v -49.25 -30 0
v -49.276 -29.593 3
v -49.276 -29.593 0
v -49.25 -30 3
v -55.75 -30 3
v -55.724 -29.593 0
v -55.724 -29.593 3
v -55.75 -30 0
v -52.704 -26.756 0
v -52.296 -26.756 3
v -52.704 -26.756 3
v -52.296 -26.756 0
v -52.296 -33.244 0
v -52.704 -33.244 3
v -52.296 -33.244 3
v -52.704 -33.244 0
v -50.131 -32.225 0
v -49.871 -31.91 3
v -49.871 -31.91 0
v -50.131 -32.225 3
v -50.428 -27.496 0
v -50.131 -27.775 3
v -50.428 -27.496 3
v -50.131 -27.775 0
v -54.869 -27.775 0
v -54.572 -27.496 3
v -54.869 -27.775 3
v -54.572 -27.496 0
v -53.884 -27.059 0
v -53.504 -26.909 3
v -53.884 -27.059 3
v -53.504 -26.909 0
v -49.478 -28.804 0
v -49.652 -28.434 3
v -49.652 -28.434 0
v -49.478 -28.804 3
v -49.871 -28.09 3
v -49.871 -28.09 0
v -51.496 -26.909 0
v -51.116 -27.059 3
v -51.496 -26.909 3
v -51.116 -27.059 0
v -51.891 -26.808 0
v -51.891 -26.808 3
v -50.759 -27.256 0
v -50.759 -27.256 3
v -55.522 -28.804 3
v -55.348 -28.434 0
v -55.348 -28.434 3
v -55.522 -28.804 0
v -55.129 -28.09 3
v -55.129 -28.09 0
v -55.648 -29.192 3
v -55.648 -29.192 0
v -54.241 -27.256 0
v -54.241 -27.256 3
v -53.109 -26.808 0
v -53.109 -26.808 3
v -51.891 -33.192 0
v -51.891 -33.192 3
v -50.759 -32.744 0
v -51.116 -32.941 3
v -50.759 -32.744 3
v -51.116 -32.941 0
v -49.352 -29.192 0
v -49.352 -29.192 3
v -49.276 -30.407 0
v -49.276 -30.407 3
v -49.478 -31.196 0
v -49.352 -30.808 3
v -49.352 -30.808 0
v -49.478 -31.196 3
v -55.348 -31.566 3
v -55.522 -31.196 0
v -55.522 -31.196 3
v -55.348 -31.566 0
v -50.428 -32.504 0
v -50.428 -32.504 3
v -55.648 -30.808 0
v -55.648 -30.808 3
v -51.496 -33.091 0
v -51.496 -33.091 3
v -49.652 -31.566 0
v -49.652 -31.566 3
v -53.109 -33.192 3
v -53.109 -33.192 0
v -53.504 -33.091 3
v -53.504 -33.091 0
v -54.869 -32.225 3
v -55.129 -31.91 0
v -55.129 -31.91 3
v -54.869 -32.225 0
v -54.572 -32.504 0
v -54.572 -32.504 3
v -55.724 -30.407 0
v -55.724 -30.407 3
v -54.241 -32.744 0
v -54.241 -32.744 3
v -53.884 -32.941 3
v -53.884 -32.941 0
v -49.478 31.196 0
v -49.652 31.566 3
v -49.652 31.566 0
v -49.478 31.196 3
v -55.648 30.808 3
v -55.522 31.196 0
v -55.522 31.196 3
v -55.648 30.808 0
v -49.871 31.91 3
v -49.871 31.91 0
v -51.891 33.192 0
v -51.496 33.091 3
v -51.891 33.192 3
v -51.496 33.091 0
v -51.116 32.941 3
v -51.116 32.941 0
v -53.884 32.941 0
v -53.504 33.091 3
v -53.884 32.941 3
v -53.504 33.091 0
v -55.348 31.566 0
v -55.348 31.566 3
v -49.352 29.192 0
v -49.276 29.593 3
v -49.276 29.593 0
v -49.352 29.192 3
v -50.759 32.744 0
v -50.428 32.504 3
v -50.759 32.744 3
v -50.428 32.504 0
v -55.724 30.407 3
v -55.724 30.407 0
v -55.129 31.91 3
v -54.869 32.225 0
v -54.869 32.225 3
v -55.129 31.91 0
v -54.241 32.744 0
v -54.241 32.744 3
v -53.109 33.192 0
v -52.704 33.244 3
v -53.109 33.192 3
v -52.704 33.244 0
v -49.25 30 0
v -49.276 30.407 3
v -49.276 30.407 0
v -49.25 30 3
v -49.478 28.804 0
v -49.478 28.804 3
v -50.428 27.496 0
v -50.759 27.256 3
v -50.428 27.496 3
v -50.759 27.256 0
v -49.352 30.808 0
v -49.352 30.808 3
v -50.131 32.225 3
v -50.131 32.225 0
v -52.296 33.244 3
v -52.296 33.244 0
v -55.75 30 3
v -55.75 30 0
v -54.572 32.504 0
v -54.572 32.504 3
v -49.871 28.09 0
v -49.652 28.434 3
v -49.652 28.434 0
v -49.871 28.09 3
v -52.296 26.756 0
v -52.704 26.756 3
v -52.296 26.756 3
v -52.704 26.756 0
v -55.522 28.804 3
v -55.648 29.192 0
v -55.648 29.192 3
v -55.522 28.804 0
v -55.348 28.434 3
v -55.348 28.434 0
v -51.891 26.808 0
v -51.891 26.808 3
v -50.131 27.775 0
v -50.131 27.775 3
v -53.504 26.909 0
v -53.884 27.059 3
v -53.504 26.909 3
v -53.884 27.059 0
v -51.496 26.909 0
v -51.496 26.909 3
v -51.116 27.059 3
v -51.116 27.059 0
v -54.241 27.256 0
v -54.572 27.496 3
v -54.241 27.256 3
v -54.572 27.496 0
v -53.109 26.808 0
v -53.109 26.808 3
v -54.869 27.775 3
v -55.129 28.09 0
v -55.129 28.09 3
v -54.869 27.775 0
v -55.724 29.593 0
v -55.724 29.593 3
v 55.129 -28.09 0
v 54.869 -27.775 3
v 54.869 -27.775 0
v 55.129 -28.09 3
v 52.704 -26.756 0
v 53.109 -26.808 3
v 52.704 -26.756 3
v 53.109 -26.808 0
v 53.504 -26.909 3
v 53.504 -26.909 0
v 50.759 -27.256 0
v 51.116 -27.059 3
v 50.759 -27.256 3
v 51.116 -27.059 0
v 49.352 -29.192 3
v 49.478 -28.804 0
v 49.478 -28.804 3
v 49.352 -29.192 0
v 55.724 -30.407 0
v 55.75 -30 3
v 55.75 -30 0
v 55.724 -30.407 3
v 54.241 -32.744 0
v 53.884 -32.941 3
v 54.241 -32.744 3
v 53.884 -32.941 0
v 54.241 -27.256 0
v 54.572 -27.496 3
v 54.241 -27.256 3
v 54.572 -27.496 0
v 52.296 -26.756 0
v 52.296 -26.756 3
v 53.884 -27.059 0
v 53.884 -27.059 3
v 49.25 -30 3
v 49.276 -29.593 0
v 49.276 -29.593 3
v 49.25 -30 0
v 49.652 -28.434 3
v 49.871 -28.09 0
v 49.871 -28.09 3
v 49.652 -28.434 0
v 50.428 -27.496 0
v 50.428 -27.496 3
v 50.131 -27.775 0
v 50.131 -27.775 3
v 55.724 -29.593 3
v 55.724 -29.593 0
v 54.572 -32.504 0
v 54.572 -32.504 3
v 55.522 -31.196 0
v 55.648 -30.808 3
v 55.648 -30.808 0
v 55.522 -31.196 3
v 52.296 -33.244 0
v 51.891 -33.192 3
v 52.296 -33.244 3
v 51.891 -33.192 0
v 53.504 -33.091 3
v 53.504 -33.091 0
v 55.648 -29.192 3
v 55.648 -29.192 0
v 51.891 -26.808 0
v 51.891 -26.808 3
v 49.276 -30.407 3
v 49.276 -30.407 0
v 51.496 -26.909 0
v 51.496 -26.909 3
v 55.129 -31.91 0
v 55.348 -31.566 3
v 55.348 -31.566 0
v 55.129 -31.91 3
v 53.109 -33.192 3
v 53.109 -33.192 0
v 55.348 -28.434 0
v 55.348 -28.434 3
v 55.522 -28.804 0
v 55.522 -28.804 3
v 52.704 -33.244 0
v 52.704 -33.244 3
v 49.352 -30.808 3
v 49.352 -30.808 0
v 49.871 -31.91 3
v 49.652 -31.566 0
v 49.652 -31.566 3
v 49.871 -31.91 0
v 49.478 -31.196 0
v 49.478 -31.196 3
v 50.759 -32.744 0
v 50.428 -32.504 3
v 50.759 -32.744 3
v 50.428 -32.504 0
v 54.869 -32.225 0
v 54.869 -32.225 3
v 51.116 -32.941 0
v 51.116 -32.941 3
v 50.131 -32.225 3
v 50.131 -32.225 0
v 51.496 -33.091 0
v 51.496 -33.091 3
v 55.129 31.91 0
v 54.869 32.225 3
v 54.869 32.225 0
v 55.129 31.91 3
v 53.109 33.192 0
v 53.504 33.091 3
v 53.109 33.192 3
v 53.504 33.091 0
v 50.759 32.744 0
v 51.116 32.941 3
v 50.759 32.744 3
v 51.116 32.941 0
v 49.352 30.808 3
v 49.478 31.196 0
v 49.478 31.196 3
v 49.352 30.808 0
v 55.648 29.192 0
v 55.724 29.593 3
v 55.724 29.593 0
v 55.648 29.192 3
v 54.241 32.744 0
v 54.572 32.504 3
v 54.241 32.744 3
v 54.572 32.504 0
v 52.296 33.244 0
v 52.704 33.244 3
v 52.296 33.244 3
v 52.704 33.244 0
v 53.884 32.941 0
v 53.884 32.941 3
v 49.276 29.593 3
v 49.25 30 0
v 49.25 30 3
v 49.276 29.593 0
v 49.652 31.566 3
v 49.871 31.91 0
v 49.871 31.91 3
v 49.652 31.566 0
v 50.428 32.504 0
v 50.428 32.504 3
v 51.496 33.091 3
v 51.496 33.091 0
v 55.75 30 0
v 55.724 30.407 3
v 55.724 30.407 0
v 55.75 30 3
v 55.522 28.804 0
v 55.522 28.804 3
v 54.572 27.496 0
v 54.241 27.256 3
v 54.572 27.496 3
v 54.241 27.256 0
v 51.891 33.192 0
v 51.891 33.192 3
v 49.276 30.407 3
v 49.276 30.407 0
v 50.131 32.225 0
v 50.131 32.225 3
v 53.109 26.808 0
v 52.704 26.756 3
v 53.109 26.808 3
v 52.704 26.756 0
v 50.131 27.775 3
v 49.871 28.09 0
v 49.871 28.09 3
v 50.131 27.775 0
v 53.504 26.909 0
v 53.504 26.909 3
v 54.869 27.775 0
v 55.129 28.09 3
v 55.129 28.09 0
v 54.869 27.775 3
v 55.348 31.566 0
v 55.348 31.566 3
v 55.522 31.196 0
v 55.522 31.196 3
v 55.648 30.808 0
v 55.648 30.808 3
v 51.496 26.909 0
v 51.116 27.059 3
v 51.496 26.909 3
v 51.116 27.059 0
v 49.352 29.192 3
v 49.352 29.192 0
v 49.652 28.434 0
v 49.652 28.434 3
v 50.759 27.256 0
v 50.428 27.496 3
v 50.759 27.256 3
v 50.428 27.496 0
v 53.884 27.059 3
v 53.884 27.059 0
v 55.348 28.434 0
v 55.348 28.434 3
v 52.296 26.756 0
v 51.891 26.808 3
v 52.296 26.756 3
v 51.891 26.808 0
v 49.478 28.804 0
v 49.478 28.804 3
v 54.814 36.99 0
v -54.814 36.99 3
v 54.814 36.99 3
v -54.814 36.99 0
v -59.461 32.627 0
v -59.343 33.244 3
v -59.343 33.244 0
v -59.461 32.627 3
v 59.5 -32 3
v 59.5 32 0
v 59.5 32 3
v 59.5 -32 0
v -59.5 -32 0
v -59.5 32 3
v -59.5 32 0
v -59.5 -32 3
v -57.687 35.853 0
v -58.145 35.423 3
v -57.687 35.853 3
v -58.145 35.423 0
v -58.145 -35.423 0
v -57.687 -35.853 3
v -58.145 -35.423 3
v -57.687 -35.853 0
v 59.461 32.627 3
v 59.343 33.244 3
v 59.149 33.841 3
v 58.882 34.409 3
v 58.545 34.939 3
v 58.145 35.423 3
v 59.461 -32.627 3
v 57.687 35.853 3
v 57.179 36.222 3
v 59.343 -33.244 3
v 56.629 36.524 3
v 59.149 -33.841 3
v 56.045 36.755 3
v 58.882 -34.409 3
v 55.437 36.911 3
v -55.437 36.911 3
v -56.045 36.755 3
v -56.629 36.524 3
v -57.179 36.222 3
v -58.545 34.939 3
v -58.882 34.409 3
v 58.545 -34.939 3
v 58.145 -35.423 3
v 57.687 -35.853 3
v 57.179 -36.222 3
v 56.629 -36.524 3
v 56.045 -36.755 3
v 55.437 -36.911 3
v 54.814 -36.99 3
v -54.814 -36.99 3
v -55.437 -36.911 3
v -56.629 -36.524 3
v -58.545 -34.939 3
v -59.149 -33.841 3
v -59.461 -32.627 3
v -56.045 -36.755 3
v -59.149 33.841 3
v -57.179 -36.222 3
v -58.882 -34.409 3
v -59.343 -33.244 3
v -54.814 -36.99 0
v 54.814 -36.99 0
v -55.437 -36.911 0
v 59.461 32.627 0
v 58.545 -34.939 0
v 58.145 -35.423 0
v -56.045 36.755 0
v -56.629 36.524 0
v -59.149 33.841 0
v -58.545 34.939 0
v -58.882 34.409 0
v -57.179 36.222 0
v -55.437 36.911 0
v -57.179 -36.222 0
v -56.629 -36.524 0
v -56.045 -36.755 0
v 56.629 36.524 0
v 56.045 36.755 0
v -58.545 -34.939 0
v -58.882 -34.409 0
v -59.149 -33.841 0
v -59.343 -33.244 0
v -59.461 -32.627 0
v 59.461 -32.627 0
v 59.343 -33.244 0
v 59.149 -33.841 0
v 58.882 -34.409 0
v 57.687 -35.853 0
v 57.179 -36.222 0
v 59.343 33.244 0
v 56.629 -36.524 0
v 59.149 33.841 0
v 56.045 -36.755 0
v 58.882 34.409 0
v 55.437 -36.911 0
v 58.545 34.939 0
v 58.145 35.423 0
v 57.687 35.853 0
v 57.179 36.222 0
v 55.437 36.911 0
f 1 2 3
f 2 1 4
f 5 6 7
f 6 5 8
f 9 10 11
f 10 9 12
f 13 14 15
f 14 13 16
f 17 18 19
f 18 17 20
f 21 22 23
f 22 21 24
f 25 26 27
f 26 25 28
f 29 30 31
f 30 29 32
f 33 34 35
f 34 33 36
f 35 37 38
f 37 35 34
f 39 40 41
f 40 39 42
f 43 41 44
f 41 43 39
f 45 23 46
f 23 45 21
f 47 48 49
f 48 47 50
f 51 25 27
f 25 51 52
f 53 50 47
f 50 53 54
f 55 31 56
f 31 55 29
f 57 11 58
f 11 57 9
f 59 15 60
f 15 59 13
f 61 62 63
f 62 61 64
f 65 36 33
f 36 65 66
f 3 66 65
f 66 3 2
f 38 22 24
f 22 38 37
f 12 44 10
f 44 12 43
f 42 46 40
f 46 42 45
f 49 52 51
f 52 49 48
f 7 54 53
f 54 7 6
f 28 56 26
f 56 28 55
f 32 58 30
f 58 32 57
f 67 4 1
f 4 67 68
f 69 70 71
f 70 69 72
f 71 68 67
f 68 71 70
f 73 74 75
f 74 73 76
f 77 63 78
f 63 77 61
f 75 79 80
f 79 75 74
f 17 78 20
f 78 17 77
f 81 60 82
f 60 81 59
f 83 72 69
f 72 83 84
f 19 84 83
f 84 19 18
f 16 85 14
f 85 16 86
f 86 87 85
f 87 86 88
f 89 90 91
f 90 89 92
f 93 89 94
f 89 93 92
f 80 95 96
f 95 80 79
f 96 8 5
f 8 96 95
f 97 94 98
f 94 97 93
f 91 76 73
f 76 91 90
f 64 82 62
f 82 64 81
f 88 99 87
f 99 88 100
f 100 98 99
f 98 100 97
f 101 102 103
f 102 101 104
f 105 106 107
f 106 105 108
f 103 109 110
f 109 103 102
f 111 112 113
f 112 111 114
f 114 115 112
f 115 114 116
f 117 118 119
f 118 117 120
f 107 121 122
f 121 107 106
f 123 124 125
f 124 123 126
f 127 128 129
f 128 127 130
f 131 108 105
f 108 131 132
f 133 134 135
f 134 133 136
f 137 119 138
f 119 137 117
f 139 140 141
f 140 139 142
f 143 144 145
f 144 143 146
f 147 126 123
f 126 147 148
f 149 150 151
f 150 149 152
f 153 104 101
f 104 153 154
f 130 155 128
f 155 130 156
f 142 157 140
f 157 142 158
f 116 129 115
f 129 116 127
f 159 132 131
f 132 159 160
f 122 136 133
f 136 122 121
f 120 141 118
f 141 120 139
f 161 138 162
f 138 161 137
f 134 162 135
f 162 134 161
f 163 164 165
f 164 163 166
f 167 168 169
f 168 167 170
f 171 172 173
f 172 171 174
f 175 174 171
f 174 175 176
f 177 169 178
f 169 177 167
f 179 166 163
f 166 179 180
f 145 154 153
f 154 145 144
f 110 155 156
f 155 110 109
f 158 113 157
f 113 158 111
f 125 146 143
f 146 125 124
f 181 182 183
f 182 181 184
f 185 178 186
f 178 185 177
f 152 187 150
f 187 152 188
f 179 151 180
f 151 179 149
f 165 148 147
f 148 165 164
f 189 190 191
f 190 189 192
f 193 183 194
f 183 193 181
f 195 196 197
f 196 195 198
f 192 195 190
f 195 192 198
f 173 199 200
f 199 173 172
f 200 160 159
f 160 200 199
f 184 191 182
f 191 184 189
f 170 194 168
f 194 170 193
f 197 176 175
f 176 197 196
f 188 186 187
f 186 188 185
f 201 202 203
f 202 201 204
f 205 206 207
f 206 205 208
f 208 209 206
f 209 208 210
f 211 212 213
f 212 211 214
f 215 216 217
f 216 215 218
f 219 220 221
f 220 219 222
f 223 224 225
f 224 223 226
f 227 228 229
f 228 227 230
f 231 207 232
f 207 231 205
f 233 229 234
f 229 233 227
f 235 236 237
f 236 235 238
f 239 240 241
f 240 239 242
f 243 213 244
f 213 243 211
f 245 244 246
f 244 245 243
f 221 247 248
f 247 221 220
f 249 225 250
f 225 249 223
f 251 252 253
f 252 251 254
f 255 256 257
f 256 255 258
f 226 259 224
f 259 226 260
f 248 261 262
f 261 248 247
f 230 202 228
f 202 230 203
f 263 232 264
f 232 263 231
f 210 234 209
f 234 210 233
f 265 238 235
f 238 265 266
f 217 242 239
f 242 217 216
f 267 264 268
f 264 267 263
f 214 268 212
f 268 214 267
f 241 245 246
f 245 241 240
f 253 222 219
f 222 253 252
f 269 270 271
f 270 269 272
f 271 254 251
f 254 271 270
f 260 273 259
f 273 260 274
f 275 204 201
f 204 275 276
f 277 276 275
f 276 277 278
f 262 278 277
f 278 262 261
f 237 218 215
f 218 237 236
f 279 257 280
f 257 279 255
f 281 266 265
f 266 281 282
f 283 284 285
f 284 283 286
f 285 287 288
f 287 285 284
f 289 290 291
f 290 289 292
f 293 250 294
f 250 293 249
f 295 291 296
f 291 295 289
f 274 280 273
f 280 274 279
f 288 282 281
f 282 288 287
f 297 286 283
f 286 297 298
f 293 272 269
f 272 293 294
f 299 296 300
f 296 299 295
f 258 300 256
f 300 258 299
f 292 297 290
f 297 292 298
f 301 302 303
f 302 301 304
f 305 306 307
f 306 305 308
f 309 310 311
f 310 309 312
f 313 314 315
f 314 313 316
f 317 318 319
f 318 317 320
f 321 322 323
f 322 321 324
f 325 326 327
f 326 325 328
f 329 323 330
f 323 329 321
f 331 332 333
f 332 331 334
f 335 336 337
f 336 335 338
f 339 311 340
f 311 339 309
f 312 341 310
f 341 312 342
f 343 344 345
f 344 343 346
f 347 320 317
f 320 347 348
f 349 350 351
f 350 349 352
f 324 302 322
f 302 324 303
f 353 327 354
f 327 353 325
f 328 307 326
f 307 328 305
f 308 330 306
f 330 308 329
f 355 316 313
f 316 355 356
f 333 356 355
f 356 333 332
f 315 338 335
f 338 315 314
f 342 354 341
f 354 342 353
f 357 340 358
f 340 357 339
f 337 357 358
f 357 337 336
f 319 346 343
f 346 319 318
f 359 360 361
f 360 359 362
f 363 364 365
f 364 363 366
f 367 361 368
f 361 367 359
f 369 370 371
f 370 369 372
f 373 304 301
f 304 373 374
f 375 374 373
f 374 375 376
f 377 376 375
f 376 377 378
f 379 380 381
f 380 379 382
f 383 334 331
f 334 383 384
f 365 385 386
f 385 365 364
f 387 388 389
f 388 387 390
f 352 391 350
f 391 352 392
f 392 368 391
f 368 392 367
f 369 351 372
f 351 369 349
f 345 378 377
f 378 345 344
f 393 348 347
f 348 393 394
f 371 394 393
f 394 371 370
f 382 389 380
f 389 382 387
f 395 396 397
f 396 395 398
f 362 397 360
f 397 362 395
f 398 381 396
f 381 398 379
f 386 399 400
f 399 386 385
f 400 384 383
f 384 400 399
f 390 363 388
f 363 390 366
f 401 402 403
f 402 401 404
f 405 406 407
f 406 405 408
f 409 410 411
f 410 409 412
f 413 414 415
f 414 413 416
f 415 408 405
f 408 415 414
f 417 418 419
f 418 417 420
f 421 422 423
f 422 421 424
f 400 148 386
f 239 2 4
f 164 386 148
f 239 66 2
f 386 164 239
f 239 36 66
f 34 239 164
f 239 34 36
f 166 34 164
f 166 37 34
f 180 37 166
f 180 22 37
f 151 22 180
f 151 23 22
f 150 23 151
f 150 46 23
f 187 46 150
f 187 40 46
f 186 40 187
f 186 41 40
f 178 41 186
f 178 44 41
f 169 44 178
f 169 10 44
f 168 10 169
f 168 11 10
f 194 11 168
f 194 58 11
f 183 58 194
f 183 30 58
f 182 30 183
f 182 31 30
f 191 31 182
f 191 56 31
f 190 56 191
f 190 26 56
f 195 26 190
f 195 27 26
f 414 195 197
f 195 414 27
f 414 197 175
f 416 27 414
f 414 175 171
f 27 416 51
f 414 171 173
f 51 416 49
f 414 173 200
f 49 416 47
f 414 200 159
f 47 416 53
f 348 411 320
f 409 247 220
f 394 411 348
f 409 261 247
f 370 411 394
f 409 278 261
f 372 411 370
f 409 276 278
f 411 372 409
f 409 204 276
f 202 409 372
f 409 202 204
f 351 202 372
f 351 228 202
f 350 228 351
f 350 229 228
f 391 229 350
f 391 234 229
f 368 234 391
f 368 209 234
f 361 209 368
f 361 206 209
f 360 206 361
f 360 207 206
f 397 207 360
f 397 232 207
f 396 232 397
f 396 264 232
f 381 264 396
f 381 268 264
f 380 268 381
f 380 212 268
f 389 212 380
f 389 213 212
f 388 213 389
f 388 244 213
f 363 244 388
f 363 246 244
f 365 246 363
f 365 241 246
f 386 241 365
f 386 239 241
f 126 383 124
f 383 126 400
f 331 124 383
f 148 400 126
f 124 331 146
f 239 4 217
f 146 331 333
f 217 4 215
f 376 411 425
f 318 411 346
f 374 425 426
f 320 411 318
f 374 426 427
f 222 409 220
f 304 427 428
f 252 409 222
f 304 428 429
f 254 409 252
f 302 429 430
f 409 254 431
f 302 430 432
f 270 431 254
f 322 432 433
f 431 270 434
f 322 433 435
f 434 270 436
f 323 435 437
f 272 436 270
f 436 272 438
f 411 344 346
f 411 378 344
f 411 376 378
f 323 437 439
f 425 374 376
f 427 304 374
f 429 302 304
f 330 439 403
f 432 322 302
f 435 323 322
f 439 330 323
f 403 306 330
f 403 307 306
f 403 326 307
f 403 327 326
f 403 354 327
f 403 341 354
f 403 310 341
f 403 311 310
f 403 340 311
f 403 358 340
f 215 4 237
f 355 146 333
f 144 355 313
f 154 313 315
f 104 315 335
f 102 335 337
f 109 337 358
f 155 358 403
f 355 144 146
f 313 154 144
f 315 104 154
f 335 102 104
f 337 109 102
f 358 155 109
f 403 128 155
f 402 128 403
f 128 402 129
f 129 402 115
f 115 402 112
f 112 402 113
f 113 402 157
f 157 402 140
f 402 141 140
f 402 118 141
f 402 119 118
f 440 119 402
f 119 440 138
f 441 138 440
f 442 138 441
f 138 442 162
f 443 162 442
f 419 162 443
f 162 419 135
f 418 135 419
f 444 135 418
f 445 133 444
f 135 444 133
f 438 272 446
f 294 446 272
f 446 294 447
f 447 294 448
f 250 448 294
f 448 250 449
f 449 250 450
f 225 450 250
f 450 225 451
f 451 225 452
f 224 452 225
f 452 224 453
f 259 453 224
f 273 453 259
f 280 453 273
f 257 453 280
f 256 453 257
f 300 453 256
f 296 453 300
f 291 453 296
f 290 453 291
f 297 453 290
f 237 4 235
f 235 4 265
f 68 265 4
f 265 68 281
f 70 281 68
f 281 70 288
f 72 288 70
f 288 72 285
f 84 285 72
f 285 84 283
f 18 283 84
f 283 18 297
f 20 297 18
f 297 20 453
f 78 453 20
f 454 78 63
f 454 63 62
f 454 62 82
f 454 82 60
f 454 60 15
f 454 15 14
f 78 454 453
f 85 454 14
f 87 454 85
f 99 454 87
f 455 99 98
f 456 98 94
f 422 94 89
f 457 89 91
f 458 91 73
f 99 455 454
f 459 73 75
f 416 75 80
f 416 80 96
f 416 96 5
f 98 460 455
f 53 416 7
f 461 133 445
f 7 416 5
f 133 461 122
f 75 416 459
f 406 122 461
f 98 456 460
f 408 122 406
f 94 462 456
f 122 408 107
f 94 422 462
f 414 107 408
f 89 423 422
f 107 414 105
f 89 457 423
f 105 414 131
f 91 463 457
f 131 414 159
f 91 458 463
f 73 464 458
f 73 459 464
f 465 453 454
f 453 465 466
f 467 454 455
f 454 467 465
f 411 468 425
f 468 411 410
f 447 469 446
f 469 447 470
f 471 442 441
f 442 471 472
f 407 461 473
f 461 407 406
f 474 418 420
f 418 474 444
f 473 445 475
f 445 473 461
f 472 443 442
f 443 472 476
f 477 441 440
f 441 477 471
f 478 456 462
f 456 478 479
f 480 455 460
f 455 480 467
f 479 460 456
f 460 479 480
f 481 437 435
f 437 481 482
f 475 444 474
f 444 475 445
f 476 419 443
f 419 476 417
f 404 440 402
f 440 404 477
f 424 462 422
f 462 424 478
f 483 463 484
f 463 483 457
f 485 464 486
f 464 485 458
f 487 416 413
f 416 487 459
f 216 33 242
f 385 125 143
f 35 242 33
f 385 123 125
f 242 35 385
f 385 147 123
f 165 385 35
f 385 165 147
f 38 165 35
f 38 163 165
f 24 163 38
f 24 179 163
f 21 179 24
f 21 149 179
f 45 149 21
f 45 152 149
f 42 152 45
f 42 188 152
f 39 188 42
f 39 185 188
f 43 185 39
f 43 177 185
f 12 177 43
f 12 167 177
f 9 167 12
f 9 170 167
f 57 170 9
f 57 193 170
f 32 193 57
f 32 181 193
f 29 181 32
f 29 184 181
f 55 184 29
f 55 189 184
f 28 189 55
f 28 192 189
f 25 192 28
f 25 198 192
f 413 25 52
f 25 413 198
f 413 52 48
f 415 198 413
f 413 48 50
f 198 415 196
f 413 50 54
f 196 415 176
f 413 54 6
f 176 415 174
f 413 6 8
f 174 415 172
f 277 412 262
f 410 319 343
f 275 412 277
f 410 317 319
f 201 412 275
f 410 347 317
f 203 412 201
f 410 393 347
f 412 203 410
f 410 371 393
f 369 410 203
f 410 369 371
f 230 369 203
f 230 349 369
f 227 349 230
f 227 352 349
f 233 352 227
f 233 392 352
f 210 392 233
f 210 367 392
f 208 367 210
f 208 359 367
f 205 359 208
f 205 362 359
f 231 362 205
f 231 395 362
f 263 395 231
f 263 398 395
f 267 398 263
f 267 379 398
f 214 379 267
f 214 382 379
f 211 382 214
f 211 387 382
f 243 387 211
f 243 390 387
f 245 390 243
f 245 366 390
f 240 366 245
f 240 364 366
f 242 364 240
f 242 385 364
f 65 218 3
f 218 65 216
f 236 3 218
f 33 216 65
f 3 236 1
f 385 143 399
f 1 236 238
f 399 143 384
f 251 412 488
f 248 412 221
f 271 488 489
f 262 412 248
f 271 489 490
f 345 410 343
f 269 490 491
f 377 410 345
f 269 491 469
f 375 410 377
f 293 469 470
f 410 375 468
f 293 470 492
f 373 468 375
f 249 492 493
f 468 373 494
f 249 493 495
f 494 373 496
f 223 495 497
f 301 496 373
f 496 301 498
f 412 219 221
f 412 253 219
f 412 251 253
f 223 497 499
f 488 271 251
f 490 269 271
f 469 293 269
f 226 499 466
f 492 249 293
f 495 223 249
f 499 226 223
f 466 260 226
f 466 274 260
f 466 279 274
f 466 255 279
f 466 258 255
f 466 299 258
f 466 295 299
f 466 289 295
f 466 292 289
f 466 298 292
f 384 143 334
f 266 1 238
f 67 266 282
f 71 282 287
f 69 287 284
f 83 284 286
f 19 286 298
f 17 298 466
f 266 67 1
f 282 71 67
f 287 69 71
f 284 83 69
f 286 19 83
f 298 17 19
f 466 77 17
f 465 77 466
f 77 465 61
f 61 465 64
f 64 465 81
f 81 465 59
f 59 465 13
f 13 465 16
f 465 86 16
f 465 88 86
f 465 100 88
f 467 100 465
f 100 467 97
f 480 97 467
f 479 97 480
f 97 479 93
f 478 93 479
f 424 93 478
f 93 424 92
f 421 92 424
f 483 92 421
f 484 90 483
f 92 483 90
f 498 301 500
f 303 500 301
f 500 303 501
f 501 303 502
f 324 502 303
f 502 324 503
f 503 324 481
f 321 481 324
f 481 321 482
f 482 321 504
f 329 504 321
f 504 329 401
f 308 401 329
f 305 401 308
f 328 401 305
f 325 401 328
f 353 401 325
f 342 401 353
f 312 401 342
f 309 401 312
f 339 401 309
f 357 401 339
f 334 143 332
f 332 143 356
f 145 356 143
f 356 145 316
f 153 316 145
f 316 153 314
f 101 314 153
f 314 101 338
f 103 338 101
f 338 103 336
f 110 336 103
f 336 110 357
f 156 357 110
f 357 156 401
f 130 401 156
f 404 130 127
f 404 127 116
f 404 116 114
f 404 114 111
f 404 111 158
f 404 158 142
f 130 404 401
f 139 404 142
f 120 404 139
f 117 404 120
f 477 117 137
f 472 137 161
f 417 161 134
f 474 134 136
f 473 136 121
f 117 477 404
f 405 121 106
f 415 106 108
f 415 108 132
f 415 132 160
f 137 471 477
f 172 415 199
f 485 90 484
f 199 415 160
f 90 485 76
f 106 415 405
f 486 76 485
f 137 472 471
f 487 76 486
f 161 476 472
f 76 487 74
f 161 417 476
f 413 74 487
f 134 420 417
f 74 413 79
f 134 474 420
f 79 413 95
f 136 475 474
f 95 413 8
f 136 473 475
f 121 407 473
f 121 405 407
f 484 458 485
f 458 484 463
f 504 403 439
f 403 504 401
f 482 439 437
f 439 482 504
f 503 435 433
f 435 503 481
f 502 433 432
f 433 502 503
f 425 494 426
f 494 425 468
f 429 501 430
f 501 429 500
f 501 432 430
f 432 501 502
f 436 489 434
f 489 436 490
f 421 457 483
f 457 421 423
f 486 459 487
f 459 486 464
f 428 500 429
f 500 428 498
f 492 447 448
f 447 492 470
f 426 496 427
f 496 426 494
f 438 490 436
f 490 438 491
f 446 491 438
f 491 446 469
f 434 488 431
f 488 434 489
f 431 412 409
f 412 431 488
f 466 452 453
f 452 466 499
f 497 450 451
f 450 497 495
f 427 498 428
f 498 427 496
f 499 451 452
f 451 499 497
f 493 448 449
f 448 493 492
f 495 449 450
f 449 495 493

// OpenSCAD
$fn = 50;


difference() {
	union() {
		hull() {
			translate(v = [-54.5000000000, 32.0000000000, 0]) {
				cylinder(h = 3, r = 5);
			}
			translate(v = [54.5000000000, 32.0000000000, 0]) {
				cylinder(h = 3, r = 5);
			}
			translate(v = [-54.5000000000, -32.0000000000, 0]) {
				cylinder(h = 3, r = 5);
			}
			translate(v = [54.5000000000, -32.0000000000, 0]) {
				cylinder(h = 3, r = 5);
			}
		}
	}
	union() {
		translate(v = [-52.5000000000, -30.0000000000, -100.0000000000]) {
			cylinder(h = 200, r = 3.2500000000);
		}
		translate(v = [-52.5000000000, 30.0000000000, -100.0000000000]) {
			cylinder(h = 200, r = 3.2500000000);
		}
		translate(v = [52.5000000000, -30.0000000000, -100.0000000000]) {
			cylinder(h = 200, r = 3.2500000000);
		}
		translate(v = [52.5000000000, 30.0000000000, -100.0000000000]) {
			cylinder(h = 200, r = 3.2500000000);
		}
	}
}
